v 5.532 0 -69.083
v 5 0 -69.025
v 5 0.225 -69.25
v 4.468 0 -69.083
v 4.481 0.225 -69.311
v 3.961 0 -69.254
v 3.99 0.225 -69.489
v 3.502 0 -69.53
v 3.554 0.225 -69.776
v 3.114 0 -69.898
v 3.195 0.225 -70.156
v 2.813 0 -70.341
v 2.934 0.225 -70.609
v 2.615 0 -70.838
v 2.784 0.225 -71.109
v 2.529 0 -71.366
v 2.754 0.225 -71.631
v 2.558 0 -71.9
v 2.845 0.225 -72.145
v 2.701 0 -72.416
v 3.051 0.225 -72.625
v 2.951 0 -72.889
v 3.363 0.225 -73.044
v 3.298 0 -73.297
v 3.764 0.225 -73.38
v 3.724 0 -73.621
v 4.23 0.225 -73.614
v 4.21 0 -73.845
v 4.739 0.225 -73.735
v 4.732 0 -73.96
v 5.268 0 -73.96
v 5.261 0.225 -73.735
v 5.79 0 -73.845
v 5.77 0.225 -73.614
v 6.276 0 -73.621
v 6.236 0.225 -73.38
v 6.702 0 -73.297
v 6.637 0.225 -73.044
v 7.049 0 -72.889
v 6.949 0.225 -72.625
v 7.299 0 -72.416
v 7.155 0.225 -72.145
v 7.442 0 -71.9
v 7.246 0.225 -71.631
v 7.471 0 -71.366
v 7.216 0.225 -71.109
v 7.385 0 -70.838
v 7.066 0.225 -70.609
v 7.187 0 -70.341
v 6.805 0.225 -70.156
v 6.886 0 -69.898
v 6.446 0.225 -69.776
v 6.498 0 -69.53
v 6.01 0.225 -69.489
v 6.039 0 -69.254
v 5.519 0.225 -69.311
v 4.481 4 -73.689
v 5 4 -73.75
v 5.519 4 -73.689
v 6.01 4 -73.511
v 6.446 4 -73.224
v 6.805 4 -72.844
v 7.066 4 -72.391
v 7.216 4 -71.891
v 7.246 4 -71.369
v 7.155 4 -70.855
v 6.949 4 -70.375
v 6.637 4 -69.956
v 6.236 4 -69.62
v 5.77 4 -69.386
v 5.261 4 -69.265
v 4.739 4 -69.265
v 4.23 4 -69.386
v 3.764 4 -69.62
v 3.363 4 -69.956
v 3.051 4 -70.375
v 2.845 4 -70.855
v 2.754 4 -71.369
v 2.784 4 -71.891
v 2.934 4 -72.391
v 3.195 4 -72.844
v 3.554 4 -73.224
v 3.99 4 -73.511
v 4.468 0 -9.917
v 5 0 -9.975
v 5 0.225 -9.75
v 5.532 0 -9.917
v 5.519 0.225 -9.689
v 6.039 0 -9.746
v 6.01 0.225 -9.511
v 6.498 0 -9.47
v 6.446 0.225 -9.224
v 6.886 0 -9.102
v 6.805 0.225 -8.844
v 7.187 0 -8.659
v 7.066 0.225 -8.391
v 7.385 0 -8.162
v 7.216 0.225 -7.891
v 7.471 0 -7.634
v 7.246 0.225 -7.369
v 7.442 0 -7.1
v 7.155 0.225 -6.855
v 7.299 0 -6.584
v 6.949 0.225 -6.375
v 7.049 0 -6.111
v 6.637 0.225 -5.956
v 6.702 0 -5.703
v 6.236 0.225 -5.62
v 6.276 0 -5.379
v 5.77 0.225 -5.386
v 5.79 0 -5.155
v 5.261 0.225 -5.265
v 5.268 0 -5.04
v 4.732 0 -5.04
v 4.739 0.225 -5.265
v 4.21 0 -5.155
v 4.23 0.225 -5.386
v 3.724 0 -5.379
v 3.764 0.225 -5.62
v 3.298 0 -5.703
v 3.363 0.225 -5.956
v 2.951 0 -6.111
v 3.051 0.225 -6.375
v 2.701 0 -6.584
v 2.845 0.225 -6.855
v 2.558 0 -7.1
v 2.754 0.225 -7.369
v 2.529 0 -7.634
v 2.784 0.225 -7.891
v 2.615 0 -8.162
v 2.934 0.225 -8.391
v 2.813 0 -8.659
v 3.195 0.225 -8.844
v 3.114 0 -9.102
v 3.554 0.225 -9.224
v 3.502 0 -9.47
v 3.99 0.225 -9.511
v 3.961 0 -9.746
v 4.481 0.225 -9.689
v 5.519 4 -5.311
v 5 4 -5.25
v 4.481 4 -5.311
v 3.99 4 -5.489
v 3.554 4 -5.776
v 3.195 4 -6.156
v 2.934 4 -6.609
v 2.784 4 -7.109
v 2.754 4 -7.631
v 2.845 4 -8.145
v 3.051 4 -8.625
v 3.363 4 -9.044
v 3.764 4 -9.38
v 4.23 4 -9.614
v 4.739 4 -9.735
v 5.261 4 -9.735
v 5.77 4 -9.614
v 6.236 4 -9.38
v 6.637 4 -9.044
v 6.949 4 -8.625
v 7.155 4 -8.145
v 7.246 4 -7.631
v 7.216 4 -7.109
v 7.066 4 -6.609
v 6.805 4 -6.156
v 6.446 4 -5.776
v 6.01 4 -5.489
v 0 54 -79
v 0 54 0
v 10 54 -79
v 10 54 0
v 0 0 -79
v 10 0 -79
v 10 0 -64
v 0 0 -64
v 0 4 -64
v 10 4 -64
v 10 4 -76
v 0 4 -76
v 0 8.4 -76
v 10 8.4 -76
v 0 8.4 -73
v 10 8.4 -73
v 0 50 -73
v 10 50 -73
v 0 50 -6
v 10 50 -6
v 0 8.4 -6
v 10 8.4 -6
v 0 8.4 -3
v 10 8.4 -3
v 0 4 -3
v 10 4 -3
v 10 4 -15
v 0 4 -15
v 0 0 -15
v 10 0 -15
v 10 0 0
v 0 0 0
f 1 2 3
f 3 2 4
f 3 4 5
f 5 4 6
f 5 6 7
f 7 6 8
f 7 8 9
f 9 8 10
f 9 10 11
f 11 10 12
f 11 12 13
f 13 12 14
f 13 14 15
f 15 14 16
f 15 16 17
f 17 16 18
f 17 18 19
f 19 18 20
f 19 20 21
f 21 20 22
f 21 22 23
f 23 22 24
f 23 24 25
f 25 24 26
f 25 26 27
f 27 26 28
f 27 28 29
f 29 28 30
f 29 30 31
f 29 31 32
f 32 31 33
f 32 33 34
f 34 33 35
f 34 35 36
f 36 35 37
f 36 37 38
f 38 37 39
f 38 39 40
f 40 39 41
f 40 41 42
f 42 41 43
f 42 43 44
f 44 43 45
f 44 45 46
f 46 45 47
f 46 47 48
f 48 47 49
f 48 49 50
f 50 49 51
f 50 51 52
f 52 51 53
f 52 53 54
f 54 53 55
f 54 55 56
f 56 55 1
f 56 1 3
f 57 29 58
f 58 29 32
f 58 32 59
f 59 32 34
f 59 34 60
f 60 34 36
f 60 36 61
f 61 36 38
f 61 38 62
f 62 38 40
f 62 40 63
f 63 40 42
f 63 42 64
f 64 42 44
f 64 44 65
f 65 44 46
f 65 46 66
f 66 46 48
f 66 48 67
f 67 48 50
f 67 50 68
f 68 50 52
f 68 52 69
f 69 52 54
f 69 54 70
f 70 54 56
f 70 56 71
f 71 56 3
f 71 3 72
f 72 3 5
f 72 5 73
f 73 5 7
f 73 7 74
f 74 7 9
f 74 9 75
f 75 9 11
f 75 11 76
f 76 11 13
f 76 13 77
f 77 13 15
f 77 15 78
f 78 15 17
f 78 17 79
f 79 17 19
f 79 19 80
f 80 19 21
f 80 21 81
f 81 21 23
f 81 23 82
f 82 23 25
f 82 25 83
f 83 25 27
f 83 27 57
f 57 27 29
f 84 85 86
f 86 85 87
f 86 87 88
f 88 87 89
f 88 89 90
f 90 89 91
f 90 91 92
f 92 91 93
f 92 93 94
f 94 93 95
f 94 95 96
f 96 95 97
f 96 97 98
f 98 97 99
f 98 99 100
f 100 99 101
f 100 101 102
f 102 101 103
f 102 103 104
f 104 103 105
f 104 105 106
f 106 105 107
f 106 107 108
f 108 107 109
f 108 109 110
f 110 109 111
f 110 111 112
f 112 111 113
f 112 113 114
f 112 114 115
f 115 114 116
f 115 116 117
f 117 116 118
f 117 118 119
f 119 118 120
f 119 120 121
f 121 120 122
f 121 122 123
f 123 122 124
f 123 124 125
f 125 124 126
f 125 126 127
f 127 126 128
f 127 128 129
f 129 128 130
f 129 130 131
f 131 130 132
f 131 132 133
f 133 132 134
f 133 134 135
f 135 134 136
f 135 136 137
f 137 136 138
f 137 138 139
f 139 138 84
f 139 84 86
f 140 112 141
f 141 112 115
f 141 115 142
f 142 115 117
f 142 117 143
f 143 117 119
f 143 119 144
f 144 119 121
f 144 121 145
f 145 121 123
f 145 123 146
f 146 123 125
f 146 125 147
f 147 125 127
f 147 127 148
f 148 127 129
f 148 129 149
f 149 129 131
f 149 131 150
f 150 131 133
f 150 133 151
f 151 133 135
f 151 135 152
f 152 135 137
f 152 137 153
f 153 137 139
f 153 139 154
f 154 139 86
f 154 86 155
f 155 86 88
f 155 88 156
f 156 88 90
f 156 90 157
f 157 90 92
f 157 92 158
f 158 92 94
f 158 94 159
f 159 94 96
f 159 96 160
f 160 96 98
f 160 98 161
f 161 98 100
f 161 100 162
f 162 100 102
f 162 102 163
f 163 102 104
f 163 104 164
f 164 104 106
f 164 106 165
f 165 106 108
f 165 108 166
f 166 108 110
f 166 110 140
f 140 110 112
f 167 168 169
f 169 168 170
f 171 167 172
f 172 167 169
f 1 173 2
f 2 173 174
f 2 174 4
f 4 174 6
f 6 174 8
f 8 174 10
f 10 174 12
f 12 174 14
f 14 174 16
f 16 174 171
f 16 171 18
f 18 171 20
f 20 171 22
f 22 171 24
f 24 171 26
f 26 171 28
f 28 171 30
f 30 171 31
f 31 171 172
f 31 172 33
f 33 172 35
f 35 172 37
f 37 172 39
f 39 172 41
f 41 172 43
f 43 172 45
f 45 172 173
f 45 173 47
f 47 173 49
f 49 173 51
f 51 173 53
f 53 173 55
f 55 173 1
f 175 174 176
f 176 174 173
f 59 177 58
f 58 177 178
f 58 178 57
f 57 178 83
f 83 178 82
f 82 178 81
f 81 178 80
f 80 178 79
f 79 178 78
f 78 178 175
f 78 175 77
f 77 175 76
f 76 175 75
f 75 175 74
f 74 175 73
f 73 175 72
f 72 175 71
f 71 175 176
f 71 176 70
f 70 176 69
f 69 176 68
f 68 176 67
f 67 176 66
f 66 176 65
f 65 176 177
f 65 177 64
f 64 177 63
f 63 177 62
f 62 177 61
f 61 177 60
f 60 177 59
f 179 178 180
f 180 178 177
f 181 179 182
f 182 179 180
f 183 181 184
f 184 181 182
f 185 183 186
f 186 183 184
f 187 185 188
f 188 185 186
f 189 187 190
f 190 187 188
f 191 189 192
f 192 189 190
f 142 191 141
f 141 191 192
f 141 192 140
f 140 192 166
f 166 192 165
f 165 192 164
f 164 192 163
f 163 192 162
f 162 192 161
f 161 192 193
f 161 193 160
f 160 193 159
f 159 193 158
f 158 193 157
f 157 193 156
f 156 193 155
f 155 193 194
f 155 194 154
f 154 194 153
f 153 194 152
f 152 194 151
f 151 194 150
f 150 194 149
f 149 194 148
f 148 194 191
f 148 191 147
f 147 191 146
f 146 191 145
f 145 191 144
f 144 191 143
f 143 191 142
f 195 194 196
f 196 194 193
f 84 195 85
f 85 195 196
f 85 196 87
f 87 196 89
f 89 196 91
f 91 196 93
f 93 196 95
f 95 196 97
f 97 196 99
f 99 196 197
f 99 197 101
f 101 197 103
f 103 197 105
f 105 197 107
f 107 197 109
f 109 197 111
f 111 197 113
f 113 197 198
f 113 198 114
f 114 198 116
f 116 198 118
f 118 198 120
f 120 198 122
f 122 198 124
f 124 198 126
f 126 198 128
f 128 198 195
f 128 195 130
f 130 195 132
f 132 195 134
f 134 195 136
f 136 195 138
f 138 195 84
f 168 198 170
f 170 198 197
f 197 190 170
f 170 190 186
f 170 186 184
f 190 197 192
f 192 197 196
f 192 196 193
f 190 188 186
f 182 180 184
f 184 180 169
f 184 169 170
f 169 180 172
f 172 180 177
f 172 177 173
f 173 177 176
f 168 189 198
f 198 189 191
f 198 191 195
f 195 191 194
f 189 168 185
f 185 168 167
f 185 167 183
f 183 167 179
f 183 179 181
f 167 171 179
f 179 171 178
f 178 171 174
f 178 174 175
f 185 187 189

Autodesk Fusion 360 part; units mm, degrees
sketch "Sketch1" plane through (0, 0, 0) normal (1, 0, 0) x (0, 0, -1)
  line L0 (0, 0) -> (15, 0)
  line L1 (15, 0) -> (15, 4)
  line L2 (15, 4) -> (3, 4)
  line L3 (3, 4) -> (3, 8.4)
  line L4 (3, 8.4) -> (6, 8.4)
  line L5 (6, 8.4) -> (6, 50)
  line L6 (6, 50) -> (39.5, 50)
  line L7 (39.5, 54) -> (0, 54)
  line L8 (0, 54) -> (0, 0)
  line L9 (39.5, 54) -> (39.5, 50) construction
  line L10 (64, 0) -> (64, 4)
  line L11 (79, 0) -> (64, 0)
  line L12 (73, 8.4) -> (73, 50)
  line L13 (76, 4) -> (76, 8.4)
  line L14 (76, 8.4) -> (73, 8.4)
  line L15 (79, 54) -> (79, 0)
  line L16 (64, 4) -> (76, 4)
  line L17 (73, 50) -> (39.5, 50)
  line L18 (39.5, 54) -> (79, 54)
  point P0 (79, 0)
  dimension "d1" = 4.4
  dimension "d3" = 6
  dimension "d4" = 4
  dimension "d5" = 50
  dimension "d7" = 73
  dimension "d8" = 4
  dimension "d11" = 3
  dimension "d12" = 15
extrude "Extrude1" add sketch "Sketch1" along normal blind 10
ref_plane "WorkPlane1" through (5, 27, -39.5) normal (0, 0, -1) x (0, 1, 0)
hole "Hole2" at (5, 0, -7.5) direction (0, 1, 0) diameter 4.5 depth 5 tip angle 118 countersink diameter 4.95 countersink angle 90
mirror "Mirror1" about plane through (5, 27, -39.5) normal (0, 0, -1) of "Hole2"
